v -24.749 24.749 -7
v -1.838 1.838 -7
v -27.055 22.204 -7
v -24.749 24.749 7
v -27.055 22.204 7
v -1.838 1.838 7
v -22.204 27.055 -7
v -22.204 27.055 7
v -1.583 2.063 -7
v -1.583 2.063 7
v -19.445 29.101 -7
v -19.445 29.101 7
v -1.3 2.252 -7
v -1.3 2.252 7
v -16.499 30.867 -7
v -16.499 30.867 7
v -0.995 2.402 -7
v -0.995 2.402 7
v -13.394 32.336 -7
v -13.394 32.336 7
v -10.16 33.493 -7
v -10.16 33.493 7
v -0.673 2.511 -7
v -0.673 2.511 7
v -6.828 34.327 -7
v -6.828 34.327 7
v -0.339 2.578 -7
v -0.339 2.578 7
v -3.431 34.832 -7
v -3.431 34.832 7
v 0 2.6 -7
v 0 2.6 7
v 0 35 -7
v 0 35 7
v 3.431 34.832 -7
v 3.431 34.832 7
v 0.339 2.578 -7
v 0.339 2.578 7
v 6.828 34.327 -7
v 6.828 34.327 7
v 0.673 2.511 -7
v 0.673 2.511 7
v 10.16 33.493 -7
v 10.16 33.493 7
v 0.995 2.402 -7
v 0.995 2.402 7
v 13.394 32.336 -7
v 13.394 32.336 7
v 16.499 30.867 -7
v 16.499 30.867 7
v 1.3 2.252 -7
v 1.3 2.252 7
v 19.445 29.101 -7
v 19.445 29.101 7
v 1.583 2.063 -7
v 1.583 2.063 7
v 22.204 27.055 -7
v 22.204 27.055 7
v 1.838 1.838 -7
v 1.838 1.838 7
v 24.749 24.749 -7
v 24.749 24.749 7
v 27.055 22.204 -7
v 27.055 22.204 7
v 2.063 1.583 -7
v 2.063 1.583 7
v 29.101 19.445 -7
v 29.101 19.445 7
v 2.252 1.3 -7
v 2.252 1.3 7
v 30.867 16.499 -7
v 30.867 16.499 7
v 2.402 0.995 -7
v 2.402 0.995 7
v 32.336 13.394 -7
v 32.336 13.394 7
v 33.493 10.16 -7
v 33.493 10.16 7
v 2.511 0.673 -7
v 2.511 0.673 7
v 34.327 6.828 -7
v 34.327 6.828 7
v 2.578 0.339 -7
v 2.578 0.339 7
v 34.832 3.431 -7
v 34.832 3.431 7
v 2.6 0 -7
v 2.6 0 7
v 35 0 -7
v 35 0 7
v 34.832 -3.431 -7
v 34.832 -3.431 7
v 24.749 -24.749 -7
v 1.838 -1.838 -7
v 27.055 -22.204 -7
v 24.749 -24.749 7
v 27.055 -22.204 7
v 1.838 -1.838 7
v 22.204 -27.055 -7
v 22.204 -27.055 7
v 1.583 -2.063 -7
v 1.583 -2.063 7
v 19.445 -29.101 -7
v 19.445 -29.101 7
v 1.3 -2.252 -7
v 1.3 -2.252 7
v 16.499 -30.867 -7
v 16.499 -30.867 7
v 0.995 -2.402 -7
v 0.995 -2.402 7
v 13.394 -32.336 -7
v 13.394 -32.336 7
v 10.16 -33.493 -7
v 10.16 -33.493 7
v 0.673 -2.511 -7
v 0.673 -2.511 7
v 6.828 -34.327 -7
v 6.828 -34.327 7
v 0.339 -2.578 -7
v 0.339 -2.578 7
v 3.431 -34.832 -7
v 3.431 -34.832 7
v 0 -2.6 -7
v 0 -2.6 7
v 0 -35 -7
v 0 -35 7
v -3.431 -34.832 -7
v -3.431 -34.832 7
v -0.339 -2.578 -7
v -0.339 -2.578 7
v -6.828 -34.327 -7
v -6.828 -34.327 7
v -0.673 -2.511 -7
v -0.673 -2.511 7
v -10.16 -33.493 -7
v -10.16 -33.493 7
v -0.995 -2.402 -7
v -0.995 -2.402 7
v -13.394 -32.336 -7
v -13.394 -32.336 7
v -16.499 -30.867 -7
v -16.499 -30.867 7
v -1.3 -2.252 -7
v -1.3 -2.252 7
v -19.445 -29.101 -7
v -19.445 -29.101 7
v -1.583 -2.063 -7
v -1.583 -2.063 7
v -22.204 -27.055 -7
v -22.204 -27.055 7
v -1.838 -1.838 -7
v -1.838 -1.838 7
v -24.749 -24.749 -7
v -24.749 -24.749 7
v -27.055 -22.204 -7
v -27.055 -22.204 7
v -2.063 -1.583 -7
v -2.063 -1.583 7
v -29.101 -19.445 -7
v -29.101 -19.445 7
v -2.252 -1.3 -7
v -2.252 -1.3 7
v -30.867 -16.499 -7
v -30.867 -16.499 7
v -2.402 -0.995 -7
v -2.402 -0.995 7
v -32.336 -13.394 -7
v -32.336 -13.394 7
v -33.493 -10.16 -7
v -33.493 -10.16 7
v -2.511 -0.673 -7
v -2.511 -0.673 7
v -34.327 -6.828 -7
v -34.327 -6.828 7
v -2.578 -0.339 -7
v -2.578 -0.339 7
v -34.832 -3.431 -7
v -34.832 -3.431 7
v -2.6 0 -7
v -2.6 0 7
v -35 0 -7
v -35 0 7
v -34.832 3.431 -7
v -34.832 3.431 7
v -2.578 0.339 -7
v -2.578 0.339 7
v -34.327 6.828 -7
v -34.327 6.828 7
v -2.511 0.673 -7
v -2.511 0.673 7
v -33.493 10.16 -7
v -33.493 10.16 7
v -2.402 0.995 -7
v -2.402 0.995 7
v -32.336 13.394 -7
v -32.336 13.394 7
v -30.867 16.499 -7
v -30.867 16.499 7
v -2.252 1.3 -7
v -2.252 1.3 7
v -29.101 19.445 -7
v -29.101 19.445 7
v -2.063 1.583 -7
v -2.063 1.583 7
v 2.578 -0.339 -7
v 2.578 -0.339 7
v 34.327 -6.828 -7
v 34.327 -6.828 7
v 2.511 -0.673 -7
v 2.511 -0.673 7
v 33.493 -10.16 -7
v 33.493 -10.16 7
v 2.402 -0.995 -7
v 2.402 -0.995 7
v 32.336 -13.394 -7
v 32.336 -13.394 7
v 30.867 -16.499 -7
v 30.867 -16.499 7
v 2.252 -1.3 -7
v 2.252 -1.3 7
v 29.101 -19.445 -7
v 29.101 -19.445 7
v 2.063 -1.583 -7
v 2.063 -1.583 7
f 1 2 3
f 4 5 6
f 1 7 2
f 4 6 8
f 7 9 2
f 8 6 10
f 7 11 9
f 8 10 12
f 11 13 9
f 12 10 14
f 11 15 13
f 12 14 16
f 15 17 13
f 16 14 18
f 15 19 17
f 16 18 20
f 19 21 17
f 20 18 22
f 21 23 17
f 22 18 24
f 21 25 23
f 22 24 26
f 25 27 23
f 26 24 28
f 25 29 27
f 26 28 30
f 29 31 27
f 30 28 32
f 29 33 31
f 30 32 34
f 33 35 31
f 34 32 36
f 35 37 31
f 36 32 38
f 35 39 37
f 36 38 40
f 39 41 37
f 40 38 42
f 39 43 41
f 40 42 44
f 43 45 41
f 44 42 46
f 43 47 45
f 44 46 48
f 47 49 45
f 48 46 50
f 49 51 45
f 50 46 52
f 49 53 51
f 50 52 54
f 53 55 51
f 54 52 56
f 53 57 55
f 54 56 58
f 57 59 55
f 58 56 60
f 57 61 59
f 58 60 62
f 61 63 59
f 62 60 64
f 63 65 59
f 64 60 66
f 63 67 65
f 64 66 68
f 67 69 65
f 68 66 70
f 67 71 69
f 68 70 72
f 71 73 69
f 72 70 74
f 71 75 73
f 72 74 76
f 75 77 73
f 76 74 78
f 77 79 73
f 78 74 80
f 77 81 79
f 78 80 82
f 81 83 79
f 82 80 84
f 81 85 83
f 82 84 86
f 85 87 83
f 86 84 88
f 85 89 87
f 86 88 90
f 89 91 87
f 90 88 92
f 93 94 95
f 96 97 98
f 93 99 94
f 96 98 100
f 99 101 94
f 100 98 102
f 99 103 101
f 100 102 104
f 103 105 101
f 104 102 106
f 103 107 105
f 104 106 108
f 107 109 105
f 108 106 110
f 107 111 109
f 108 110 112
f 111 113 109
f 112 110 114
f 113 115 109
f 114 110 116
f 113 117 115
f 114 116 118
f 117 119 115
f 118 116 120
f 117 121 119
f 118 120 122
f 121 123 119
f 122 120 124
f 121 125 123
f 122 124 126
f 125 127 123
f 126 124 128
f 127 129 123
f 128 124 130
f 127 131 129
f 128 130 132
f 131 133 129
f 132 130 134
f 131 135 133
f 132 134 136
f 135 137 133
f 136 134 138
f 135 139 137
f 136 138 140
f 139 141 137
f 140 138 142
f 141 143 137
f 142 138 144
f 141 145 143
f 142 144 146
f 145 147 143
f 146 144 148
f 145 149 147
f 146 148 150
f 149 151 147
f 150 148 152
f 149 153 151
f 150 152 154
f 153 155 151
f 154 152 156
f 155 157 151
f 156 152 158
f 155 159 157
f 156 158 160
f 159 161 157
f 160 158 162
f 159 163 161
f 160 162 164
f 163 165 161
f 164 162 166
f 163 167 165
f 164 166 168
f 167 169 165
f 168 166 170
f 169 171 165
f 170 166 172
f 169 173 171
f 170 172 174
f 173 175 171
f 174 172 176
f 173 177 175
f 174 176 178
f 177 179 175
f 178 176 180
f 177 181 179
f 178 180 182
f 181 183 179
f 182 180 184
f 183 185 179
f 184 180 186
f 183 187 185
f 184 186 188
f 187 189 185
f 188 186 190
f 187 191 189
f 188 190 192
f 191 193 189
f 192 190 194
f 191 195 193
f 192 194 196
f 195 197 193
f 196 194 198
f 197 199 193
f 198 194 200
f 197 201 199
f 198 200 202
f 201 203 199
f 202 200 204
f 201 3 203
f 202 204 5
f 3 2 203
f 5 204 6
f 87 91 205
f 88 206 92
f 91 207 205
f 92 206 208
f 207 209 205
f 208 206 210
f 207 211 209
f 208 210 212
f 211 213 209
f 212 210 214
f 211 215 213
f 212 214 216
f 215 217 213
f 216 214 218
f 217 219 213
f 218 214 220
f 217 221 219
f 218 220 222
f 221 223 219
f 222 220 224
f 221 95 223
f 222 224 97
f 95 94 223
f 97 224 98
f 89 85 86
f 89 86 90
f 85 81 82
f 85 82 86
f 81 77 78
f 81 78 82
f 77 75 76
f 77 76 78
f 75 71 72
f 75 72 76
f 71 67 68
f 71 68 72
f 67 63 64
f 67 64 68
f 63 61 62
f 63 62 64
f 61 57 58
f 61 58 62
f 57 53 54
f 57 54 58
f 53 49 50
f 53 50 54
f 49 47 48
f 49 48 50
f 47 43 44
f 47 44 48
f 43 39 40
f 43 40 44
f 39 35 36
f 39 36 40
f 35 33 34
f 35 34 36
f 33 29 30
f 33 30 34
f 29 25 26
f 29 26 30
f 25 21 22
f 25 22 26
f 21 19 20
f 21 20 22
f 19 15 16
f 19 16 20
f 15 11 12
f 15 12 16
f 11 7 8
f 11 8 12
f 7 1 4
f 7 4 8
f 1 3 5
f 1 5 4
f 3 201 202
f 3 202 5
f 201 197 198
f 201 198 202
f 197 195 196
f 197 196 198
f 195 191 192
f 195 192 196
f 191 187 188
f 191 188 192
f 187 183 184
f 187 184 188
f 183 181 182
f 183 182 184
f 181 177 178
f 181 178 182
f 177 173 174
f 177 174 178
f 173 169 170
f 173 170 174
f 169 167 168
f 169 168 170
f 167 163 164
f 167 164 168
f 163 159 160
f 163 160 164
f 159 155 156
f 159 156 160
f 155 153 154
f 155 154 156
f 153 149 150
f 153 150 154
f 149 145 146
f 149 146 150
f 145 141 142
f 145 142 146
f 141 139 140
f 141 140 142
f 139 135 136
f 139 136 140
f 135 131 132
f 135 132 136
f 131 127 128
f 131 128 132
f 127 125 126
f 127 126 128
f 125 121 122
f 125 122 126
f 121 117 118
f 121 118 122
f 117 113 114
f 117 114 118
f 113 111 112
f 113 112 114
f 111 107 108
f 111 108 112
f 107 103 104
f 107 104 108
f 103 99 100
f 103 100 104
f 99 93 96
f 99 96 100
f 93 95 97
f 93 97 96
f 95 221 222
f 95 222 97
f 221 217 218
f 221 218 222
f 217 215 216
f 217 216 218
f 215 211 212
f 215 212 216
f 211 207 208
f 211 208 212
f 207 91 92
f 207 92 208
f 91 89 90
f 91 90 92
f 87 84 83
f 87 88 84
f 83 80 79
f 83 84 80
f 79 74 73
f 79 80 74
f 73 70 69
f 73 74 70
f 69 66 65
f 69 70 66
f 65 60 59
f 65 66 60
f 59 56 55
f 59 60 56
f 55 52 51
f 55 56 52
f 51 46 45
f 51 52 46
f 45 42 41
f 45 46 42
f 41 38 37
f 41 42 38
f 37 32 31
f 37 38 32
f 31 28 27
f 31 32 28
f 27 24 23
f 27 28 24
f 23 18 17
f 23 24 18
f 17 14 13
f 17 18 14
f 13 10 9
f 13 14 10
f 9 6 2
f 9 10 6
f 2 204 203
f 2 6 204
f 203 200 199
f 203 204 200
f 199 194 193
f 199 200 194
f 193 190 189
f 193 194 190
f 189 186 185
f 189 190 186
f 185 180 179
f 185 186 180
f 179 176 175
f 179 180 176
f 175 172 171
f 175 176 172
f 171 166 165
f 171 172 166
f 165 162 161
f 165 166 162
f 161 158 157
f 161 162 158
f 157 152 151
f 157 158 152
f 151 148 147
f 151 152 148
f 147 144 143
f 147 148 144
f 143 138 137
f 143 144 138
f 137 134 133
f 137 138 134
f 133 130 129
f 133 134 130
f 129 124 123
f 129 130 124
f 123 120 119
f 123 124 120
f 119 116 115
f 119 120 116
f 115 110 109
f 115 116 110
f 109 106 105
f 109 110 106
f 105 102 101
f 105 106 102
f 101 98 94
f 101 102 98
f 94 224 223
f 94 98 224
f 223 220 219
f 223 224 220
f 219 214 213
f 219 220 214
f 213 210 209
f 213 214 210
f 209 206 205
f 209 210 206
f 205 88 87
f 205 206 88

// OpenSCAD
polyhedron(points=[[-24.748737, 24.748737, -7.0], [-27.055366, 22.203765, -7.0], [-1.838478, 1.838478, -7.0], [-24.748737, 24.748737, 7.0], [-27.055366, 22.203765, 7.0], [-1.838478, 1.838478, 7.0], [-22.203765, 27.055366, -7.0], [-22.203765, 27.055366, 7.0], [-1.58278, 2.062719, -7.0], [-1.58278, 2.062719, 7.0], [-19.444958, 29.101436, -7.0], [-19.444958, 29.101436, 7.0], [-1.3, 2.251666, -7.0], [-1.3, 2.251666, 7.0], [-16.498886, 30.867244, -7.0], [-16.498886, 30.867244, 7.0], [-0.994977, 2.402087, -7.0], [-0.994977, 2.402087, 7.0], [-13.39392, 32.335784, -7.0], [-13.39392, 32.335784, 7.0], [-10.159964, 33.492912, -7.0], [-10.159964, 33.492912, 7.0], [-0.67293, 2.511407, -7.0], [-0.67293, 2.511407, 7.0], [-6.828161, 34.327485, -7.0], [-6.828161, 34.327485, 7.0], [-0.339368, 2.577757, -7.0], [-0.339368, 2.577757, 7.0], [-3.4306, 34.831465, -7.0], [-3.4306, 34.831465, 7.0], [0.0, 2.6, -7.0], [0.0, 2.6, 7.0], [0.0, 35.0, -7.0], [0.0, 35.0, 7.0], [3.4306, 34.831465, -7.0], [3.4306, 34.831465, 7.0], [0.339368, 2.577757, -7.0], [0.339368, 2.577757, 7.0], [6.828161, 34.327485, -7.0], [6.828161, 34.327485, 7.0], [0.67293, 2.511407, -7.0], [0.67293, 2.511407, 7.0], [10.159964, 33.492912, -7.0], [10.159964, 33.492912, 7.0], [0.994977, 2.402087, -7.0], [0.994977, 2.402087, 7.0], [13.39392, 32.335784, -7.0], [13.39392, 32.335784, 7.0], [16.498886, 30.867244, -7.0], [16.498886, 30.867244, 7.0], [1.3, 2.251666, -7.0], [1.3, 2.251666, 7.0], [19.444958, 29.101436, -7.0], [19.444958, 29.101436, 7.0], [1.58278, 2.062719, -7.0], [1.58278, 2.062719, 7.0], [22.203765, 27.055366, -7.0], [22.203765, 27.055366, 7.0], [1.838478, 1.838478, -7.0], [1.838478, 1.838478, 7.0], [24.748737, 24.748737, -7.0], [24.748737, 24.748737, 7.0], [27.055366, 22.203765, -7.0], [27.055366, 22.203765, 7.0], [2.062719, 1.58278, -7.0], [2.062719, 1.58278, 7.0], [29.101436, 19.444958, -7.0], [29.101436, 19.444958, 7.0], [2.251666, 1.3, -7.0], [2.251666, 1.3, 7.0], [30.867244, 16.498886, -7.0], [30.867244, 16.498886, 7.0], [2.402087, 0.994977, -7.0], [2.402087, 0.994977, 7.0], [32.335784, 13.39392, -7.0], [32.335784, 13.39392, 7.0], [33.492912, 10.159964, -7.0], [33.492912, 10.159964, 7.0], [2.511407, 0.67293, -7.0], [2.511407, 0.67293, 7.0], [34.327485, 6.828161, -7.0], [34.327485, 6.828161, 7.0], [2.577757, 0.339368, -7.0], [2.577757, 0.339368, 7.0], [34.831465, 3.4306, -7.0], [34.831465, 3.4306, 7.0], [2.6, 0.0, -7.0], [2.6, 0.0, 7.0], [35.0, 0.0, -7.0], [35.0, 0.0, 7.0], [34.831465, -3.4306, -7.0], [34.831465, -3.4306, 7.0], [24.748737, -24.748737, -7.0], [27.055366, -22.203765, -7.0], [1.838478, -1.838478, -7.0], [24.748737, -24.748737, 7.0], [27.055366, -22.203765, 7.0], [1.838478, -1.838478, 7.0], [22.203765, -27.055366, -7.0], [22.203765, -27.055366, 7.0], [1.58278, -2.062719, -7.0], [1.58278, -2.062719, 7.0], [19.444958, -29.101436, -7.0], [19.444958, -29.101436, 7.0], [1.3, -2.251666, -7.0], [1.3, -2.251666, 7.0], [16.498886, -30.867244, -7.0], [16.498886, -30.867244, 7.0], [0.994977, -2.402087, -7.0], [0.994977, -2.402087, 7.0], [13.39392, -32.335784, -7.0], [13.39392, -32.335784, 7.0], [10.159964, -33.492912, -7.0], [10.159964, -33.492912, 7.0], [0.67293, -2.511407, -7.0], [0.67293, -2.511407, 7.0], [6.828161, -34.327485, -7.0], [6.828161, -34.327485, 7.0], [0.339368, -2.577757, -7.0], [0.339368, -2.577757, 7.0], [3.4306, -34.831465, -7.0], [3.4306, -34.831465, 7.0], [-0.0, -2.6, -7.0], [-0.0, -2.6, 7.0], [-0.0, -35.0, -7.0], [-0.0, -35.0, 7.0], [-3.4306, -34.831465, -7.0], [-3.4306, -34.831465, 7.0], [-0.339368, -2.577757, -7.0], [-0.339368, -2.577757, 7.0], [-6.828161, -34.327485, -7.0], [-6.828161, -34.327485, 7.0], [-0.67293, -2.511407, -7.0], [-0.67293, -2.511407, 7.0], [-10.159964, -33.492912, -7.0], [-10.159964, -33.492912, 7.0], [-0.994977, -2.402087, -7.0], [-0.994977, -2.402087, 7.0], [-13.39392, -32.335784, -7.0], [-13.39392, -32.335784, 7.0], [-16.498886, -30.867244, -7.0], [-16.498886, -30.867244, 7.0], [-1.3, -2.251666, -7.0], [-1.3, -2.251666, 7.0], [-19.444958, -29.101436, -7.0], [-19.444958, -29.101436, 7.0], [-1.58278, -2.062719, -7.0], [-1.58278, -2.062719, 7.0], [-22.203765, -27.055366, -7.0], [-22.203765, -27.055366, 7.0], [-1.838478, -1.838478, -7.0], [-1.838478, -1.838478, 7.0], [-24.748737, -24.748737, -7.0], [-24.748737, -24.748737, 7.0], [-27.055366, -22.203765, -7.0], [-27.055366, -22.203765, 7.0], [-2.062719, -1.58278, -7.0], [-2.062719, -1.58278, 7.0], [-29.101436, -19.444958, -7.0], [-29.101436, -19.444958, 7.0], [-2.251666, -1.3, -7.0], [-2.251666, -1.3, 7.0], [-30.867244, -16.498886, -7.0], [-30.867244, -16.498886, 7.0], [-2.402087, -0.994977, -7.0], [-2.402087, -0.994977, 7.0], [-32.335784, -13.39392, -7.0], [-32.335784, -13.39392, 7.0], [-33.492912, -10.159964, -7.0], [-33.492912, -10.159964, 7.0], [-2.511407, -0.67293, -7.0], [-2.511407, -0.67293, 7.0], [-34.327485, -6.828161, -7.0], [-34.327485, -6.828161, 7.0], [-2.577757, -0.339368, -7.0], [-2.577757, -0.339368, 7.0], [-34.831465, -3.4306, -7.0], [-34.831465, -3.4306, 7.0], [-2.6, 0.0, -7.0], [-2.6, 0.0, 7.0], [-35.0, 0.0, -7.0], [-35.0, 0.0, 7.0], [-34.831465, 3.4306, -7.0], [-34.831465, 3.4306, 7.0], [-2.577757, 0.339368, -7.0], [-2.577757, 0.339368, 7.0], [-34.327485, 6.828161, -7.0], [-34.327485, 6.828161, 7.0], [-2.511407, 0.67293, -7.0], [-2.511407, 0.67293, 7.0], [-33.492912, 10.159964, -7.0], [-33.492912, 10.159964, 7.0], [-2.402087, 0.994977, -7.0], [-2.402087, 0.994977, 7.0], [-32.335784, 13.39392, -7.0], [-32.335784, 13.39392, 7.0], [-30.867244, 16.498886, -7.0], [-30.867244, 16.498886, 7.0], [-2.251666, 1.3, -7.0], [-2.251666, 1.3, 7.0], [-29.101436, 19.444958, -7.0], [-29.101436, 19.444958, 7.0], [-2.062719, 1.58278, -7.0], [-2.062719, 1.58278, 7.0], [2.577757, -0.339368, -7.0], [2.577757, -0.339368, 7.0], [34.327485, -6.828161, -7.0], [34.327485, -6.828161, 7.0], [2.511407, -0.67293, -7.0], [2.511407, -0.67293, 7.0], [33.492912, -10.159964, -7.0], [33.492912, -10.159964, 7.0], [2.402087, -0.994977, -7.0], [2.402087, -0.994977, 7.0], [32.335784, -13.39392, -7.0], [32.335784, -13.39392, 7.0], [30.867244, -16.498886, -7.0], [30.867244, -16.498886, 7.0], [2.251666, -1.3, -7.0], [2.251666, -1.3, 7.0], [29.101436, -19.444958, -7.0], [29.101436, -19.444958, 7.0], [2.062719, -1.58278, -7.0], [2.062719, -1.58278, 7.0]], faces=[[0, 2, 1], [3, 4, 5], [0, 6, 2], [3, 5, 7], [6, 8, 2], [7, 5, 9], [6, 10, 8], [7, 9, 11], [10, 12, 8], [11, 9, 13], [10, 14, 12], [11, 13, 15], [14, 16, 12], [15, 13, 17], [14, 18, 16], [15, 17, 19], [18, 20, 16], [19, 17, 21], [20, 22, 16], [21, 17, 23], [20, 24, 22], [21, 23, 25], [24, 26, 22], [25, 23, 27], [24, 28, 26], [25, 27, 29], [28, 30, 26], [29, 27, 31], [28, 32, 30], [29, 31, 33], [32, 34, 30], [33, 31, 35], [34, 36, 30], [35, 31, 37], [34, 38, 36], [35, 37, 39], [38, 40, 36], [39, 37, 41], [38, 42, 40], [39, 41, 43], [42, 44, 40], [43, 41, 45], [42, 46, 44], [43, 45, 47], [46, 48, 44], [47, 45, 49], [48, 50, 44], [49, 45, 51], [48, 52, 50], [49, 51, 53], [52, 54, 50], [53, 51, 55], [52, 56, 54], [53, 55, 57], [56, 58, 54], [57, 55, 59], [56, 60, 58], [57, 59, 61], [60, 62, 58], [61, 59, 63], [62, 64, 58], [63, 59, 65], [62, 66, 64], [63, 65, 67], [66, 68, 64], [67, 65, 69], [66, 70, 68], [67, 69, 71], [70, 72, 68], [71, 69, 73], [70, 74, 72], [71, 73, 75], [74, 76, 72], [75, 73, 77], [76, 78, 72], [77, 73, 79], [76, 80, 78], [77, 79, 81], [80, 82, 78], [81, 79, 83], [80, 84, 82], [81, 83, 85], [84, 86, 82], [85, 83, 87], [84, 88, 86], [85, 87, 89], [88, 90, 86], [89, 87, 91], [92, 94, 93], [95, 96, 97], [92, 98, 94], [95, 97, 99], [98, 100, 94], [99, 97, 101], [98, 102, 100], [99, 101, 103], [102, 104, 100], [103, 101, 105], [102, 106, 104], [103, 105, 107], [106, 108, 104], [107, 105, 109], [106, 110, 108], [107, 109, 111], [110, 112, 108], [111, 109, 113], [112, 114, 108], [113, 109, 115], [112, 116, 114], [113, 115, 117], [116, 118, 114], [117, 115, 119], [116, 120, 118], [117, 119, 121], [120, 122, 118], [121, 119, 123], [120, 124, 122], [121, 123, 125], [124, 126, 122], [125, 123, 127], [126, 128, 122], [127, 123, 129], [126, 130, 128], [127, 129, 131], [130, 132, 128], [131, 129, 133], [130, 134, 132], [131, 133, 135], [134, 136, 132], [135, 133, 137], [134, 138, 136], [135, 137, 139], [138, 140, 136], [139, 137, 141], [140, 142, 136], [141, 137, 143], [140, 144, 142], [141, 143, 145], [144, 146, 142], [145, 143, 147], [144, 148, 146], [145, 147, 149], [148, 150, 146], [149, 147, 151], [148, 152, 150], [149, 151, 153], [152, 154, 150], [153, 151, 155], [154, 156, 150], [155, 151, 157], [154, 158, 156], [155, 157, 159], [158, 160, 156], [159, 157, 161], [158, 162, 160], [159, 161, 163], [162, 164, 160], [163, 161, 165], [162, 166, 164], [163, 165, 167], [166, 168, 164], [167, 165, 169], [168, 170, 164], [169, 165, 171], [168, 172, 170], [169, 171, 173], [172, 174, 170], [173, 171, 175], [172, 176, 174], [173, 175, 177], [176, 178, 174], [177, 175, 179], [176, 180, 178], [177, 179, 181], [180, 182, 178], [181, 179, 183], [182, 184, 178], [183, 179, 185], [182, 186, 184], [183, 185, 187], [186, 188, 184], [187, 185, 189], [186, 190, 188], [187, 189, 191], [190, 192, 188], [191, 189, 193], [190, 194, 192], [191, 193, 195], [194, 196, 192], [195, 193, 197], [196, 198, 192], [197, 193, 199], [196, 200, 198], [197, 199, 201], [200, 202, 198], [201, 199, 203], [200, 1, 202], [201, 203, 4], [1, 2, 202], [4, 203, 5], [86, 90, 204], [87, 205, 91], [90, 206, 204], [91, 205, 207], [206, 208, 204], [207, 205, 209], [206, 210, 208], [207, 209, 211], [210, 212, 208], [211, 209, 213], [210, 214, 212], [211, 213, 215], [214, 216, 212], [215, 213, 217], [216, 218, 212], [217, 213, 219], [216, 220, 218], [217, 219, 221], [220, 222, 218], [221, 219, 223], [220, 93, 222], [221, 223, 96], [93, 94, 222], [96, 223, 97], [88, 84, 85], [88, 85, 89], [84, 80, 81], [84, 81, 85], [80, 76, 77], [80, 77, 81], [76, 74, 75], [76, 75, 77], [74, 70, 71], [74, 71, 75], [70, 66, 67], [70, 67, 71], [66, 62, 63], [66, 63, 67], [62, 60, 61], [62, 61, 63], [60, 56, 57], [60, 57, 61], [56, 52, 53], [56, 53, 57], [52, 48, 49], [52, 49, 53], [48, 46, 47], [48, 47, 49], [46, 42, 43], [46, 43, 47], [42, 38, 39], [42, 39, 43], [38, 34, 35], [38, 35, 39], [34, 32, 33], [34, 33, 35], [32, 28, 29], [32, 29, 33], [28, 24, 25], [28, 25, 29], [24, 20, 21], [24, 21, 25], [20, 18, 19], [20, 19, 21], [18, 14, 15], [18, 15, 19], [14, 10, 11], [14, 11, 15], [10, 6, 7], [10, 7, 11], [6, 0, 3], [6, 3, 7], [0, 1, 4], [0, 4, 3], [1, 200, 201], [1, 201, 4], [200, 196, 197], [200, 197, 201], [196, 194, 195], [196, 195, 197], [194, 190, 191], [194, 191, 195], [190, 186, 187], [190, 187, 191], [186, 182, 183], [186, 183, 187], [182, 180, 181], [182, 181, 183], [180, 176, 177], [180, 177, 181], [176, 172, 173], [176, 173, 177], [172, 168, 169], [172, 169, 173], [168, 166, 167], [168, 167, 169], [166, 162, 163], [166, 163, 167], [162, 158, 159], [162, 159, 163], [158, 154, 155], [158, 155, 159], [154, 152, 153], [154, 153, 155], [152, 148, 149], [152, 149, 153], [148, 144, 145], [148, 145, 149], [144, 140, 141], [144, 141, 145], [140, 138, 139], [140, 139, 141], [138, 134, 135], [138, 135, 139], [134, 130, 131], [134, 131, 135], [130, 126, 127], [130, 127, 131], [126, 124, 125], [126, 125, 127], [124, 120, 121], [124, 121, 125], [120, 116, 117], [120, 117, 121], [116, 112, 113], [116, 113, 117], [112, 110, 111], [112, 111, 113], [110, 106, 107], [110, 107, 111], [106, 102, 103], [106, 103, 107], [102, 98, 99], [102, 99, 103], [98, 92, 95], [98, 95, 99], [92, 93, 96], [92, 96, 95], [93, 220, 221], [93, 221, 96], [220, 216, 217], [220, 217, 221], [216, 214, 215], [216, 215, 217], [214, 210, 211], [214, 211, 215], [210, 206, 207], [210, 207, 211], [206, 90, 91], [206, 91, 207], [90, 88, 89], [90, 89, 91], [86, 83, 82], [86, 87, 83], [82, 79, 78], [82, 83, 79], [78, 73, 72], [78, 79, 73], [72, 69, 68], [72, 73, 69], [68, 65, 64], [68, 69, 65], [64, 59, 58], [64, 65, 59], [58, 55, 54], [58, 59, 55], [54, 51, 50], [54, 55, 51], [50, 45, 44], [50, 51, 45], [44, 41, 40], [44, 45, 41], [40, 37, 36], [40, 41, 37], [36, 31, 30], [36, 37, 31], [30, 27, 26], [30, 31, 27], [26, 23, 22], [26, 27, 23], [22, 17, 16], [22, 23, 17], [16, 13, 12], [16, 17, 13], [12, 9, 8], [12, 13, 9], [8, 5, 2], [8, 9, 5], [2, 203, 202], [2, 5, 203], [202, 199, 198], [202, 203, 199], [198, 193, 192], [198, 199, 193], [192, 189, 188], [192, 193, 189], [188, 185, 184], [188, 189, 185], [184, 179, 178], [184, 185, 179], [178, 175, 174], [178, 179, 175], [174, 171, 170], [174, 175, 171], [170, 165, 164], [170, 171, 165], [164, 161, 160], [164, 165, 161], [160, 157, 156], [160, 161, 157], [156, 151, 150], [156, 157, 151], [150, 147, 146], [150, 151, 147], [146, 143, 142], [146, 147, 143], [142, 137, 136], [142, 143, 137], [136, 133, 132], [136, 137, 133], [132, 129, 128], [132, 133, 129], [128, 123, 122], [128, 129, 123], [122, 119, 118], [122, 123, 119], [118, 115, 114], [118, 119, 115], [114, 109, 108], [114, 115, 109], [108, 105, 104], [108, 109, 105], [104, 101, 100], [104, 105, 101], [100, 97, 94], [100, 101, 97], [94, 223, 222], [94, 97, 223], [222, 219, 218], [222, 223, 219], [218, 213, 212], [218, 219, 213], [212, 209, 208], [212, 213, 209], [208, 205, 204], [208, 209, 205], [204, 87, 86], [204, 205, 87]], convexity=20);
